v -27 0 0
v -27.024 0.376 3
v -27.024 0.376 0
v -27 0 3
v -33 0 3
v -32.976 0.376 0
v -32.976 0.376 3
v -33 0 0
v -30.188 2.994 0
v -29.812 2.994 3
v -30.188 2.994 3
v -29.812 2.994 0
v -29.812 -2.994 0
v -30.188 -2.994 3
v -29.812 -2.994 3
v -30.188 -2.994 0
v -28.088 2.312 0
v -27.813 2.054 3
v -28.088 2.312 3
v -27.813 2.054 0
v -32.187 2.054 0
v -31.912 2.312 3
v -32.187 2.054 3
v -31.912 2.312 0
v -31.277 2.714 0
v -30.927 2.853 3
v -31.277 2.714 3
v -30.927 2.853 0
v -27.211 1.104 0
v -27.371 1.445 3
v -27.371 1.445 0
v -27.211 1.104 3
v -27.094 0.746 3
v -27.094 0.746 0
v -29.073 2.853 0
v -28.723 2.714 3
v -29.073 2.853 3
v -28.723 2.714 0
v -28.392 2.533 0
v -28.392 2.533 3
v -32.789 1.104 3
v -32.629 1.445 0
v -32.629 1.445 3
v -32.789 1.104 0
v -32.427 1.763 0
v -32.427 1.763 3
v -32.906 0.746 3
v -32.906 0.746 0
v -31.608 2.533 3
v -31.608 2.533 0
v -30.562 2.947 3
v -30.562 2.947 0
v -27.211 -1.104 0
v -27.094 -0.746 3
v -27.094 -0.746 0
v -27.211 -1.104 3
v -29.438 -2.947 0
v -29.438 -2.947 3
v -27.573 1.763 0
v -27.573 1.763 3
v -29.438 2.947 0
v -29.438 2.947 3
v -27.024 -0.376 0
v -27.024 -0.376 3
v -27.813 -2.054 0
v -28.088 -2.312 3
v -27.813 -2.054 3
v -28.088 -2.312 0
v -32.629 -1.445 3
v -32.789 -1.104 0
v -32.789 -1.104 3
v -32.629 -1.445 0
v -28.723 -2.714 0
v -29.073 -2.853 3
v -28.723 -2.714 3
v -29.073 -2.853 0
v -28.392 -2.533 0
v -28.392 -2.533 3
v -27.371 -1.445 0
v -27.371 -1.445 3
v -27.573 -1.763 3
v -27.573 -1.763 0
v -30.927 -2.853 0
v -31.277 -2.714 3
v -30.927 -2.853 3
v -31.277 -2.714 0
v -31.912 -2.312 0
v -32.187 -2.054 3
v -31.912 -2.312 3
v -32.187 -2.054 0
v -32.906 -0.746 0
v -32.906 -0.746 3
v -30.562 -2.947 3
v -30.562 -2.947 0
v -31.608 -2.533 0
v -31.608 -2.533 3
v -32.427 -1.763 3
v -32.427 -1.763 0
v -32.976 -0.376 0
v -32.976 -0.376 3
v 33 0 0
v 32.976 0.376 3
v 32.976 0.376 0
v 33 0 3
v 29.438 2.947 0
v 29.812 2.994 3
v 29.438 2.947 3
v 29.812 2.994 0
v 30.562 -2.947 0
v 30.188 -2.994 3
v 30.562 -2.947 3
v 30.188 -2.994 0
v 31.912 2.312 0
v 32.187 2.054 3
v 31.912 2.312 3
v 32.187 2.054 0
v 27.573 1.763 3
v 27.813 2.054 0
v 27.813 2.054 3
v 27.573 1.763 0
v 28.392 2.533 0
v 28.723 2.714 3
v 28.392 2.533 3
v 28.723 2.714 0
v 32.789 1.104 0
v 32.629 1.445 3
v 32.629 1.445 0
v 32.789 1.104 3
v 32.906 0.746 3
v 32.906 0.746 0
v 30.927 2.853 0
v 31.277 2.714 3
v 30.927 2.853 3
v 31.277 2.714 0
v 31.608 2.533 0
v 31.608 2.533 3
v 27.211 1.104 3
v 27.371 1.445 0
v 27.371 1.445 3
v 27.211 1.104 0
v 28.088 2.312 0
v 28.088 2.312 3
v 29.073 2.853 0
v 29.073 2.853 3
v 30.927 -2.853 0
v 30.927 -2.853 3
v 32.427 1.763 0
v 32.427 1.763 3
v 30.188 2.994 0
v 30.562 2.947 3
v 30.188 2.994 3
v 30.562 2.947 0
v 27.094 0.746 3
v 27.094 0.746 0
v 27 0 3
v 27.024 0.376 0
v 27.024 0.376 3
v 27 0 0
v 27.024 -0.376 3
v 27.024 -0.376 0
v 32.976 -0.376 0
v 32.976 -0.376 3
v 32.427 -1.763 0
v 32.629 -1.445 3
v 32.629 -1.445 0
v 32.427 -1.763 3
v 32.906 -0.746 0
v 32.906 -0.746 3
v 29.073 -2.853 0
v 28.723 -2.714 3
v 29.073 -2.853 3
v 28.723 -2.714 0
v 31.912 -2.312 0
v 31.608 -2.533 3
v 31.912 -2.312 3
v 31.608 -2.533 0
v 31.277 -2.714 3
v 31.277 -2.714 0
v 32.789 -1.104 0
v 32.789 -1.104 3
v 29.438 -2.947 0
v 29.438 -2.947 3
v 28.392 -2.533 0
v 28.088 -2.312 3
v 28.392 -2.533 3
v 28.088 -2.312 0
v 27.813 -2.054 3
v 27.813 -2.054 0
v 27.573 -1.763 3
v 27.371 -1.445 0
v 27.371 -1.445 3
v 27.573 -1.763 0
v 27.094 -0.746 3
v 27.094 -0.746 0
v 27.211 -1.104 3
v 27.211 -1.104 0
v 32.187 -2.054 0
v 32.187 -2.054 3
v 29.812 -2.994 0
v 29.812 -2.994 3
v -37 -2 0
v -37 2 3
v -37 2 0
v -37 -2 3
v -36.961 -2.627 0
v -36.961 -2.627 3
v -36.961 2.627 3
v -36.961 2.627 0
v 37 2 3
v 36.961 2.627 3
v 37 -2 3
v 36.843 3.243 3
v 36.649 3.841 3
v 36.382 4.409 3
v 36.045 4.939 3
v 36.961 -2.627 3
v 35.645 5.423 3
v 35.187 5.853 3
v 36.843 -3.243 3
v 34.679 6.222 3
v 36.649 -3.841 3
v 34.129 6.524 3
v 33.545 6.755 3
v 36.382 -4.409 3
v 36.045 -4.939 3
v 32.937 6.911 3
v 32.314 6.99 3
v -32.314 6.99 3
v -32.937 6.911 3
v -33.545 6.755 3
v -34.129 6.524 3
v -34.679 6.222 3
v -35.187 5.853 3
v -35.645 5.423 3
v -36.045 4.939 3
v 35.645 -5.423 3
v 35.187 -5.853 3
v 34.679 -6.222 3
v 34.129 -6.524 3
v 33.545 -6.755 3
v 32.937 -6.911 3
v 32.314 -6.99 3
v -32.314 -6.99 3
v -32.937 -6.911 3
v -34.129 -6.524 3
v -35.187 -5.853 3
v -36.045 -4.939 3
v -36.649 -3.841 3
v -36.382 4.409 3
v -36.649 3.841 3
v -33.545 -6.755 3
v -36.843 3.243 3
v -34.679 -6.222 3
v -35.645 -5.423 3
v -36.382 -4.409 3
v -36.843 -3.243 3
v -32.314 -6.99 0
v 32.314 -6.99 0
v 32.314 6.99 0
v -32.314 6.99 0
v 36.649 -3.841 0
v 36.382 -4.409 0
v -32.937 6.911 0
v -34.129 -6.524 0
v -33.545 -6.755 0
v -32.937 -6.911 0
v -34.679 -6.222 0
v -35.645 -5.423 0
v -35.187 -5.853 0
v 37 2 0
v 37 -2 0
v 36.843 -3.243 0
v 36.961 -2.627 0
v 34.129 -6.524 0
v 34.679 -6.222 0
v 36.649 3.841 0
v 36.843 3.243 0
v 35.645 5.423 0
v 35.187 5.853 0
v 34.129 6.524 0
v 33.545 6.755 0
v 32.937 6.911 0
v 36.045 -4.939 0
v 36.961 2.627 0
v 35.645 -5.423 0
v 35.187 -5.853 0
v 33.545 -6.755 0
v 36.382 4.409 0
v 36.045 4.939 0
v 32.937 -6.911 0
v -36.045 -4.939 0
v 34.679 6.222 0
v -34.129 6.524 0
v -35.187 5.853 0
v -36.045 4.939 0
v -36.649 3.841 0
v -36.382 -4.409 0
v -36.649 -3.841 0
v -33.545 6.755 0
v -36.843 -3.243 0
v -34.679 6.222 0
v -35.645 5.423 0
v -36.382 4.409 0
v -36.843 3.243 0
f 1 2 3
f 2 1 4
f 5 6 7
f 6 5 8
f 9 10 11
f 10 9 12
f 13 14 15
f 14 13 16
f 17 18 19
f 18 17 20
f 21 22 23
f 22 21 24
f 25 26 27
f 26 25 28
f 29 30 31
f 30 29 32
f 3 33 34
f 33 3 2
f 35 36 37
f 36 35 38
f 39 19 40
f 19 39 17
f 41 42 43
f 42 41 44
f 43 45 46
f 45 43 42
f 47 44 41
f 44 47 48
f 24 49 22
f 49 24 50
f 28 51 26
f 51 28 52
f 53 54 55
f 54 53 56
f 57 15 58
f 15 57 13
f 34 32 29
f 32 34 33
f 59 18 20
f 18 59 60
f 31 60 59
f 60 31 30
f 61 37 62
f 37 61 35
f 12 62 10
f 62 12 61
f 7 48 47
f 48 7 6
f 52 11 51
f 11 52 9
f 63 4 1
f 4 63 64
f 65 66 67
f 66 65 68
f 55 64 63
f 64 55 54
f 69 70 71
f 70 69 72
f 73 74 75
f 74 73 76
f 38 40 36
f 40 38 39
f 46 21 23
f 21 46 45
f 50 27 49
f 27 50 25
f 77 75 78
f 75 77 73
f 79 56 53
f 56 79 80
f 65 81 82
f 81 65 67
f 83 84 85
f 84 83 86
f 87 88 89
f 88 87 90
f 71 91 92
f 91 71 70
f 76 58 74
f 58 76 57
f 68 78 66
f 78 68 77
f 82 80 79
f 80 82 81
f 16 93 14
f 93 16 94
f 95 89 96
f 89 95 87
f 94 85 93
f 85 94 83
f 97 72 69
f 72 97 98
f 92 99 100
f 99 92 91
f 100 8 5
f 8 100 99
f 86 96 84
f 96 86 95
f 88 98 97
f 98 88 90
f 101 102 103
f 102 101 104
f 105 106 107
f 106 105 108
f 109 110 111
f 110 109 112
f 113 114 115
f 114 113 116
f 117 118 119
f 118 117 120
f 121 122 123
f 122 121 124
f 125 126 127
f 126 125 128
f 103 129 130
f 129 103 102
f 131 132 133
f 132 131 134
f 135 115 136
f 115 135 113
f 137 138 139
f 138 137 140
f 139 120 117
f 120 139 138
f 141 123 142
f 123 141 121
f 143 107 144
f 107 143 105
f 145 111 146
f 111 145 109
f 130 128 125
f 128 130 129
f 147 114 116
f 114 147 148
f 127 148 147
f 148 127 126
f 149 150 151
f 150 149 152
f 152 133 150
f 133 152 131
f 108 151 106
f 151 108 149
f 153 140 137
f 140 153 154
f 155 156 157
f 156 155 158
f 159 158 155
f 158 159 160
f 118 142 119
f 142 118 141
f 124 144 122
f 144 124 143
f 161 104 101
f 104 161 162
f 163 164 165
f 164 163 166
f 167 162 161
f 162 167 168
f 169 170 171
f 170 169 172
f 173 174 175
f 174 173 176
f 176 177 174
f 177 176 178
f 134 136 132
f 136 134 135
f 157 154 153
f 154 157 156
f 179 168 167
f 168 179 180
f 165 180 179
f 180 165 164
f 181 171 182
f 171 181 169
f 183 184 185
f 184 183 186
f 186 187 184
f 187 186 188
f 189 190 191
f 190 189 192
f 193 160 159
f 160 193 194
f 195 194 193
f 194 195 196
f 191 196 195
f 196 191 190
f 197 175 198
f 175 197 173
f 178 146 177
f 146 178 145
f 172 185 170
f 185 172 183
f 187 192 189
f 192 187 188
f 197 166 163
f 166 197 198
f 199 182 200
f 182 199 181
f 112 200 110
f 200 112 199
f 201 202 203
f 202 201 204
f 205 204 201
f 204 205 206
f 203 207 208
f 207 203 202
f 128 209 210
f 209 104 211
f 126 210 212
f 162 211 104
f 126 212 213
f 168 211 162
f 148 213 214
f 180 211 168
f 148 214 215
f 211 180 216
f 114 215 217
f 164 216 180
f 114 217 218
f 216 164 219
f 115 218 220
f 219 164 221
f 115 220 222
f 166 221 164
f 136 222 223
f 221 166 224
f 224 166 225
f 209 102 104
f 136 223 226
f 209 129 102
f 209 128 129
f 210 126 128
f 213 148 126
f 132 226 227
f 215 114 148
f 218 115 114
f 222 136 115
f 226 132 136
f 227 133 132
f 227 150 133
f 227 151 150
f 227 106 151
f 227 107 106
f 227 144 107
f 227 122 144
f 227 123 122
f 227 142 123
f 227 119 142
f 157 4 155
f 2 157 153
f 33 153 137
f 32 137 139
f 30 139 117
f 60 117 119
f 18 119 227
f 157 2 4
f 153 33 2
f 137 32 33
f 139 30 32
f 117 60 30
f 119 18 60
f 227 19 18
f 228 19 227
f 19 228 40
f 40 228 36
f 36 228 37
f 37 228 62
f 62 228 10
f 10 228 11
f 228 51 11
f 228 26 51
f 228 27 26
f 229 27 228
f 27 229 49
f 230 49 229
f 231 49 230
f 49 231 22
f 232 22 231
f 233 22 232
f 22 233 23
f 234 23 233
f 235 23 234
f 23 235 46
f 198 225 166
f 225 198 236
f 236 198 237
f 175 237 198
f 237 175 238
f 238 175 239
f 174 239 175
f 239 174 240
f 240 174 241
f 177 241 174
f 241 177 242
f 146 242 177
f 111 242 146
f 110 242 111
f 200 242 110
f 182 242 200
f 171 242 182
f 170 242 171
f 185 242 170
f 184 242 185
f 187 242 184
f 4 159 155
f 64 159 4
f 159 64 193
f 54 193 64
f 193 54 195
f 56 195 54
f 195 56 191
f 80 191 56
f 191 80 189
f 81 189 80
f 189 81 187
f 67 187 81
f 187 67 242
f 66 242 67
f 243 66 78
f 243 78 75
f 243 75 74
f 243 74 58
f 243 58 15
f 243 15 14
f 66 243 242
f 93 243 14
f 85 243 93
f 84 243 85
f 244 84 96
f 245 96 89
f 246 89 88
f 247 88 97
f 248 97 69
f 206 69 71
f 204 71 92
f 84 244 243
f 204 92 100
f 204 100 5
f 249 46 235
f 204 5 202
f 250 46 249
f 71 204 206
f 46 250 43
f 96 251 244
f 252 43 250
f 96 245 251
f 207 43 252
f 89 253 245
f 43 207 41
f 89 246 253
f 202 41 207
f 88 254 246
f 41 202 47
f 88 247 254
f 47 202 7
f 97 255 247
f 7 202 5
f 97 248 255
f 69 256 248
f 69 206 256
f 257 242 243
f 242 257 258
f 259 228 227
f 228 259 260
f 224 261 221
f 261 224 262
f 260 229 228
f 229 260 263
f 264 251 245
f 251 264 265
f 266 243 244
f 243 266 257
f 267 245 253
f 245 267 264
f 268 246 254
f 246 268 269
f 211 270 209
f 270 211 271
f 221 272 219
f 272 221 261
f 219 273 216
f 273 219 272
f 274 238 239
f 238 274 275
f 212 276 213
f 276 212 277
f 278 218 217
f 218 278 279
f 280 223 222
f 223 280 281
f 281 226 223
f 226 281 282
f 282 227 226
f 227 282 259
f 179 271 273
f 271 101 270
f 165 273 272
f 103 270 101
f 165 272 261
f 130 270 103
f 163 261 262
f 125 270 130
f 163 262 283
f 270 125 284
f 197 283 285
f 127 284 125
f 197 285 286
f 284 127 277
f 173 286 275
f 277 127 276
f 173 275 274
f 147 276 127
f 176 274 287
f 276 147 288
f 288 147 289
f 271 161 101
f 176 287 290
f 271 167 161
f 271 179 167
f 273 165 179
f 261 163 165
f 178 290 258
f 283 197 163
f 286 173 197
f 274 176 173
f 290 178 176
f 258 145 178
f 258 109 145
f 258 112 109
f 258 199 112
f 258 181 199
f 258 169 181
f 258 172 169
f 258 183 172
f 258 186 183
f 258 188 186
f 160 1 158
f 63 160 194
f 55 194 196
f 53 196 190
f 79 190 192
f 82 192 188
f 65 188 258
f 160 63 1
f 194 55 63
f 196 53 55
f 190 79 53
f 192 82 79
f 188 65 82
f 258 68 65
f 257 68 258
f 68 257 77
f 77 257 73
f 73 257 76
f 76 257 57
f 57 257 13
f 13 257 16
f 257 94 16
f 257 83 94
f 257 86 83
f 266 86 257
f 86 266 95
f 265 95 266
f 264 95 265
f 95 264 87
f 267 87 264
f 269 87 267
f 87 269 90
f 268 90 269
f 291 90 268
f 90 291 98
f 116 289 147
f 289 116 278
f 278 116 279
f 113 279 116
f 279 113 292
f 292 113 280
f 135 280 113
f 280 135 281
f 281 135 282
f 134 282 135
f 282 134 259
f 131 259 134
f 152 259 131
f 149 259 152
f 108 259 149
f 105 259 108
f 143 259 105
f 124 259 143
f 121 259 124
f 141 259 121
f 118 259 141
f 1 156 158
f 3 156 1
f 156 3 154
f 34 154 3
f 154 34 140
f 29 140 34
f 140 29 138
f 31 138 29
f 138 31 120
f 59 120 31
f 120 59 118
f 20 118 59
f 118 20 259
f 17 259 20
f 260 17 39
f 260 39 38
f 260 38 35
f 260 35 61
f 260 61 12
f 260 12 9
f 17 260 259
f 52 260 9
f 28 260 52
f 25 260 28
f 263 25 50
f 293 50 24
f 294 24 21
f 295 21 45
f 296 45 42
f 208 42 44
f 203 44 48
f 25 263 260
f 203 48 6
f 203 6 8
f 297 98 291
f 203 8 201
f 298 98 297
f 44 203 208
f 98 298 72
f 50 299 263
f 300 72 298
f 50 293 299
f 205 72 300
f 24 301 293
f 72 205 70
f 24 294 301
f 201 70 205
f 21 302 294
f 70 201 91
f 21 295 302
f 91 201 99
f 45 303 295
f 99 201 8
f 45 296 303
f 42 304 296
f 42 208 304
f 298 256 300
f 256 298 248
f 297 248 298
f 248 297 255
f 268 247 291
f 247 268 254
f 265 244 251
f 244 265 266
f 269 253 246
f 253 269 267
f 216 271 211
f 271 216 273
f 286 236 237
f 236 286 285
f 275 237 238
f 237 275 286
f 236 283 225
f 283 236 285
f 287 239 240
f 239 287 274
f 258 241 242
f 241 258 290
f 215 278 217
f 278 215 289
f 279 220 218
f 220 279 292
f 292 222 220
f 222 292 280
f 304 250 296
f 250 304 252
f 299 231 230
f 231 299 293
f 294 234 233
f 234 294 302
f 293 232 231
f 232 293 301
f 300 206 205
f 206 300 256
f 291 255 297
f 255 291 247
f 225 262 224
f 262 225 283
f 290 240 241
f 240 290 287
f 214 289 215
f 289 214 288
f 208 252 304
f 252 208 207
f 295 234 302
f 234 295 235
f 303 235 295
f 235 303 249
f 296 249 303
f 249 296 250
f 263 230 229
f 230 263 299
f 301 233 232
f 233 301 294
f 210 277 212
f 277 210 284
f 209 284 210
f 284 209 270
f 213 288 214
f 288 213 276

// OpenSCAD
$fn = 50;


difference() {
	union() {
		hull() {
			translate(v = [-32.0000000000, 2.0000000000, 0]) {
				cylinder(h = 3, r = 5);
			}
			translate(v = [32.0000000000, 2.0000000000, 0]) {
				cylinder(h = 3, r = 5);
			}
			translate(v = [-32.0000000000, -2.0000000000, 0]) {
				cylinder(h = 3, r = 5);
			}
			translate(v = [32.0000000000, -2.0000000000, 0]) {
				cylinder(h = 3, r = 5);
			}
		}
	}
	union() {
		translate(v = [-30.0000000000, 0.0000000000, -100.0000000000]) {
			cylinder(h = 200, r = 3.0000000000);
		}
		translate(v = [-30.0000000000, 0.0000000000, -100.0000000000]) {
			cylinder(h = 200, r = 3.0000000000);
		}
		translate(v = [30.0000000000, 0.0000000000, -100.0000000000]) {
			cylinder(h = 200, r = 3.0000000000);
		}
		translate(v = [30.0000000000, 0.0000000000, -100.0000000000]) {
			cylinder(h = 200, r = 3.0000000000);
		}
	}
}
